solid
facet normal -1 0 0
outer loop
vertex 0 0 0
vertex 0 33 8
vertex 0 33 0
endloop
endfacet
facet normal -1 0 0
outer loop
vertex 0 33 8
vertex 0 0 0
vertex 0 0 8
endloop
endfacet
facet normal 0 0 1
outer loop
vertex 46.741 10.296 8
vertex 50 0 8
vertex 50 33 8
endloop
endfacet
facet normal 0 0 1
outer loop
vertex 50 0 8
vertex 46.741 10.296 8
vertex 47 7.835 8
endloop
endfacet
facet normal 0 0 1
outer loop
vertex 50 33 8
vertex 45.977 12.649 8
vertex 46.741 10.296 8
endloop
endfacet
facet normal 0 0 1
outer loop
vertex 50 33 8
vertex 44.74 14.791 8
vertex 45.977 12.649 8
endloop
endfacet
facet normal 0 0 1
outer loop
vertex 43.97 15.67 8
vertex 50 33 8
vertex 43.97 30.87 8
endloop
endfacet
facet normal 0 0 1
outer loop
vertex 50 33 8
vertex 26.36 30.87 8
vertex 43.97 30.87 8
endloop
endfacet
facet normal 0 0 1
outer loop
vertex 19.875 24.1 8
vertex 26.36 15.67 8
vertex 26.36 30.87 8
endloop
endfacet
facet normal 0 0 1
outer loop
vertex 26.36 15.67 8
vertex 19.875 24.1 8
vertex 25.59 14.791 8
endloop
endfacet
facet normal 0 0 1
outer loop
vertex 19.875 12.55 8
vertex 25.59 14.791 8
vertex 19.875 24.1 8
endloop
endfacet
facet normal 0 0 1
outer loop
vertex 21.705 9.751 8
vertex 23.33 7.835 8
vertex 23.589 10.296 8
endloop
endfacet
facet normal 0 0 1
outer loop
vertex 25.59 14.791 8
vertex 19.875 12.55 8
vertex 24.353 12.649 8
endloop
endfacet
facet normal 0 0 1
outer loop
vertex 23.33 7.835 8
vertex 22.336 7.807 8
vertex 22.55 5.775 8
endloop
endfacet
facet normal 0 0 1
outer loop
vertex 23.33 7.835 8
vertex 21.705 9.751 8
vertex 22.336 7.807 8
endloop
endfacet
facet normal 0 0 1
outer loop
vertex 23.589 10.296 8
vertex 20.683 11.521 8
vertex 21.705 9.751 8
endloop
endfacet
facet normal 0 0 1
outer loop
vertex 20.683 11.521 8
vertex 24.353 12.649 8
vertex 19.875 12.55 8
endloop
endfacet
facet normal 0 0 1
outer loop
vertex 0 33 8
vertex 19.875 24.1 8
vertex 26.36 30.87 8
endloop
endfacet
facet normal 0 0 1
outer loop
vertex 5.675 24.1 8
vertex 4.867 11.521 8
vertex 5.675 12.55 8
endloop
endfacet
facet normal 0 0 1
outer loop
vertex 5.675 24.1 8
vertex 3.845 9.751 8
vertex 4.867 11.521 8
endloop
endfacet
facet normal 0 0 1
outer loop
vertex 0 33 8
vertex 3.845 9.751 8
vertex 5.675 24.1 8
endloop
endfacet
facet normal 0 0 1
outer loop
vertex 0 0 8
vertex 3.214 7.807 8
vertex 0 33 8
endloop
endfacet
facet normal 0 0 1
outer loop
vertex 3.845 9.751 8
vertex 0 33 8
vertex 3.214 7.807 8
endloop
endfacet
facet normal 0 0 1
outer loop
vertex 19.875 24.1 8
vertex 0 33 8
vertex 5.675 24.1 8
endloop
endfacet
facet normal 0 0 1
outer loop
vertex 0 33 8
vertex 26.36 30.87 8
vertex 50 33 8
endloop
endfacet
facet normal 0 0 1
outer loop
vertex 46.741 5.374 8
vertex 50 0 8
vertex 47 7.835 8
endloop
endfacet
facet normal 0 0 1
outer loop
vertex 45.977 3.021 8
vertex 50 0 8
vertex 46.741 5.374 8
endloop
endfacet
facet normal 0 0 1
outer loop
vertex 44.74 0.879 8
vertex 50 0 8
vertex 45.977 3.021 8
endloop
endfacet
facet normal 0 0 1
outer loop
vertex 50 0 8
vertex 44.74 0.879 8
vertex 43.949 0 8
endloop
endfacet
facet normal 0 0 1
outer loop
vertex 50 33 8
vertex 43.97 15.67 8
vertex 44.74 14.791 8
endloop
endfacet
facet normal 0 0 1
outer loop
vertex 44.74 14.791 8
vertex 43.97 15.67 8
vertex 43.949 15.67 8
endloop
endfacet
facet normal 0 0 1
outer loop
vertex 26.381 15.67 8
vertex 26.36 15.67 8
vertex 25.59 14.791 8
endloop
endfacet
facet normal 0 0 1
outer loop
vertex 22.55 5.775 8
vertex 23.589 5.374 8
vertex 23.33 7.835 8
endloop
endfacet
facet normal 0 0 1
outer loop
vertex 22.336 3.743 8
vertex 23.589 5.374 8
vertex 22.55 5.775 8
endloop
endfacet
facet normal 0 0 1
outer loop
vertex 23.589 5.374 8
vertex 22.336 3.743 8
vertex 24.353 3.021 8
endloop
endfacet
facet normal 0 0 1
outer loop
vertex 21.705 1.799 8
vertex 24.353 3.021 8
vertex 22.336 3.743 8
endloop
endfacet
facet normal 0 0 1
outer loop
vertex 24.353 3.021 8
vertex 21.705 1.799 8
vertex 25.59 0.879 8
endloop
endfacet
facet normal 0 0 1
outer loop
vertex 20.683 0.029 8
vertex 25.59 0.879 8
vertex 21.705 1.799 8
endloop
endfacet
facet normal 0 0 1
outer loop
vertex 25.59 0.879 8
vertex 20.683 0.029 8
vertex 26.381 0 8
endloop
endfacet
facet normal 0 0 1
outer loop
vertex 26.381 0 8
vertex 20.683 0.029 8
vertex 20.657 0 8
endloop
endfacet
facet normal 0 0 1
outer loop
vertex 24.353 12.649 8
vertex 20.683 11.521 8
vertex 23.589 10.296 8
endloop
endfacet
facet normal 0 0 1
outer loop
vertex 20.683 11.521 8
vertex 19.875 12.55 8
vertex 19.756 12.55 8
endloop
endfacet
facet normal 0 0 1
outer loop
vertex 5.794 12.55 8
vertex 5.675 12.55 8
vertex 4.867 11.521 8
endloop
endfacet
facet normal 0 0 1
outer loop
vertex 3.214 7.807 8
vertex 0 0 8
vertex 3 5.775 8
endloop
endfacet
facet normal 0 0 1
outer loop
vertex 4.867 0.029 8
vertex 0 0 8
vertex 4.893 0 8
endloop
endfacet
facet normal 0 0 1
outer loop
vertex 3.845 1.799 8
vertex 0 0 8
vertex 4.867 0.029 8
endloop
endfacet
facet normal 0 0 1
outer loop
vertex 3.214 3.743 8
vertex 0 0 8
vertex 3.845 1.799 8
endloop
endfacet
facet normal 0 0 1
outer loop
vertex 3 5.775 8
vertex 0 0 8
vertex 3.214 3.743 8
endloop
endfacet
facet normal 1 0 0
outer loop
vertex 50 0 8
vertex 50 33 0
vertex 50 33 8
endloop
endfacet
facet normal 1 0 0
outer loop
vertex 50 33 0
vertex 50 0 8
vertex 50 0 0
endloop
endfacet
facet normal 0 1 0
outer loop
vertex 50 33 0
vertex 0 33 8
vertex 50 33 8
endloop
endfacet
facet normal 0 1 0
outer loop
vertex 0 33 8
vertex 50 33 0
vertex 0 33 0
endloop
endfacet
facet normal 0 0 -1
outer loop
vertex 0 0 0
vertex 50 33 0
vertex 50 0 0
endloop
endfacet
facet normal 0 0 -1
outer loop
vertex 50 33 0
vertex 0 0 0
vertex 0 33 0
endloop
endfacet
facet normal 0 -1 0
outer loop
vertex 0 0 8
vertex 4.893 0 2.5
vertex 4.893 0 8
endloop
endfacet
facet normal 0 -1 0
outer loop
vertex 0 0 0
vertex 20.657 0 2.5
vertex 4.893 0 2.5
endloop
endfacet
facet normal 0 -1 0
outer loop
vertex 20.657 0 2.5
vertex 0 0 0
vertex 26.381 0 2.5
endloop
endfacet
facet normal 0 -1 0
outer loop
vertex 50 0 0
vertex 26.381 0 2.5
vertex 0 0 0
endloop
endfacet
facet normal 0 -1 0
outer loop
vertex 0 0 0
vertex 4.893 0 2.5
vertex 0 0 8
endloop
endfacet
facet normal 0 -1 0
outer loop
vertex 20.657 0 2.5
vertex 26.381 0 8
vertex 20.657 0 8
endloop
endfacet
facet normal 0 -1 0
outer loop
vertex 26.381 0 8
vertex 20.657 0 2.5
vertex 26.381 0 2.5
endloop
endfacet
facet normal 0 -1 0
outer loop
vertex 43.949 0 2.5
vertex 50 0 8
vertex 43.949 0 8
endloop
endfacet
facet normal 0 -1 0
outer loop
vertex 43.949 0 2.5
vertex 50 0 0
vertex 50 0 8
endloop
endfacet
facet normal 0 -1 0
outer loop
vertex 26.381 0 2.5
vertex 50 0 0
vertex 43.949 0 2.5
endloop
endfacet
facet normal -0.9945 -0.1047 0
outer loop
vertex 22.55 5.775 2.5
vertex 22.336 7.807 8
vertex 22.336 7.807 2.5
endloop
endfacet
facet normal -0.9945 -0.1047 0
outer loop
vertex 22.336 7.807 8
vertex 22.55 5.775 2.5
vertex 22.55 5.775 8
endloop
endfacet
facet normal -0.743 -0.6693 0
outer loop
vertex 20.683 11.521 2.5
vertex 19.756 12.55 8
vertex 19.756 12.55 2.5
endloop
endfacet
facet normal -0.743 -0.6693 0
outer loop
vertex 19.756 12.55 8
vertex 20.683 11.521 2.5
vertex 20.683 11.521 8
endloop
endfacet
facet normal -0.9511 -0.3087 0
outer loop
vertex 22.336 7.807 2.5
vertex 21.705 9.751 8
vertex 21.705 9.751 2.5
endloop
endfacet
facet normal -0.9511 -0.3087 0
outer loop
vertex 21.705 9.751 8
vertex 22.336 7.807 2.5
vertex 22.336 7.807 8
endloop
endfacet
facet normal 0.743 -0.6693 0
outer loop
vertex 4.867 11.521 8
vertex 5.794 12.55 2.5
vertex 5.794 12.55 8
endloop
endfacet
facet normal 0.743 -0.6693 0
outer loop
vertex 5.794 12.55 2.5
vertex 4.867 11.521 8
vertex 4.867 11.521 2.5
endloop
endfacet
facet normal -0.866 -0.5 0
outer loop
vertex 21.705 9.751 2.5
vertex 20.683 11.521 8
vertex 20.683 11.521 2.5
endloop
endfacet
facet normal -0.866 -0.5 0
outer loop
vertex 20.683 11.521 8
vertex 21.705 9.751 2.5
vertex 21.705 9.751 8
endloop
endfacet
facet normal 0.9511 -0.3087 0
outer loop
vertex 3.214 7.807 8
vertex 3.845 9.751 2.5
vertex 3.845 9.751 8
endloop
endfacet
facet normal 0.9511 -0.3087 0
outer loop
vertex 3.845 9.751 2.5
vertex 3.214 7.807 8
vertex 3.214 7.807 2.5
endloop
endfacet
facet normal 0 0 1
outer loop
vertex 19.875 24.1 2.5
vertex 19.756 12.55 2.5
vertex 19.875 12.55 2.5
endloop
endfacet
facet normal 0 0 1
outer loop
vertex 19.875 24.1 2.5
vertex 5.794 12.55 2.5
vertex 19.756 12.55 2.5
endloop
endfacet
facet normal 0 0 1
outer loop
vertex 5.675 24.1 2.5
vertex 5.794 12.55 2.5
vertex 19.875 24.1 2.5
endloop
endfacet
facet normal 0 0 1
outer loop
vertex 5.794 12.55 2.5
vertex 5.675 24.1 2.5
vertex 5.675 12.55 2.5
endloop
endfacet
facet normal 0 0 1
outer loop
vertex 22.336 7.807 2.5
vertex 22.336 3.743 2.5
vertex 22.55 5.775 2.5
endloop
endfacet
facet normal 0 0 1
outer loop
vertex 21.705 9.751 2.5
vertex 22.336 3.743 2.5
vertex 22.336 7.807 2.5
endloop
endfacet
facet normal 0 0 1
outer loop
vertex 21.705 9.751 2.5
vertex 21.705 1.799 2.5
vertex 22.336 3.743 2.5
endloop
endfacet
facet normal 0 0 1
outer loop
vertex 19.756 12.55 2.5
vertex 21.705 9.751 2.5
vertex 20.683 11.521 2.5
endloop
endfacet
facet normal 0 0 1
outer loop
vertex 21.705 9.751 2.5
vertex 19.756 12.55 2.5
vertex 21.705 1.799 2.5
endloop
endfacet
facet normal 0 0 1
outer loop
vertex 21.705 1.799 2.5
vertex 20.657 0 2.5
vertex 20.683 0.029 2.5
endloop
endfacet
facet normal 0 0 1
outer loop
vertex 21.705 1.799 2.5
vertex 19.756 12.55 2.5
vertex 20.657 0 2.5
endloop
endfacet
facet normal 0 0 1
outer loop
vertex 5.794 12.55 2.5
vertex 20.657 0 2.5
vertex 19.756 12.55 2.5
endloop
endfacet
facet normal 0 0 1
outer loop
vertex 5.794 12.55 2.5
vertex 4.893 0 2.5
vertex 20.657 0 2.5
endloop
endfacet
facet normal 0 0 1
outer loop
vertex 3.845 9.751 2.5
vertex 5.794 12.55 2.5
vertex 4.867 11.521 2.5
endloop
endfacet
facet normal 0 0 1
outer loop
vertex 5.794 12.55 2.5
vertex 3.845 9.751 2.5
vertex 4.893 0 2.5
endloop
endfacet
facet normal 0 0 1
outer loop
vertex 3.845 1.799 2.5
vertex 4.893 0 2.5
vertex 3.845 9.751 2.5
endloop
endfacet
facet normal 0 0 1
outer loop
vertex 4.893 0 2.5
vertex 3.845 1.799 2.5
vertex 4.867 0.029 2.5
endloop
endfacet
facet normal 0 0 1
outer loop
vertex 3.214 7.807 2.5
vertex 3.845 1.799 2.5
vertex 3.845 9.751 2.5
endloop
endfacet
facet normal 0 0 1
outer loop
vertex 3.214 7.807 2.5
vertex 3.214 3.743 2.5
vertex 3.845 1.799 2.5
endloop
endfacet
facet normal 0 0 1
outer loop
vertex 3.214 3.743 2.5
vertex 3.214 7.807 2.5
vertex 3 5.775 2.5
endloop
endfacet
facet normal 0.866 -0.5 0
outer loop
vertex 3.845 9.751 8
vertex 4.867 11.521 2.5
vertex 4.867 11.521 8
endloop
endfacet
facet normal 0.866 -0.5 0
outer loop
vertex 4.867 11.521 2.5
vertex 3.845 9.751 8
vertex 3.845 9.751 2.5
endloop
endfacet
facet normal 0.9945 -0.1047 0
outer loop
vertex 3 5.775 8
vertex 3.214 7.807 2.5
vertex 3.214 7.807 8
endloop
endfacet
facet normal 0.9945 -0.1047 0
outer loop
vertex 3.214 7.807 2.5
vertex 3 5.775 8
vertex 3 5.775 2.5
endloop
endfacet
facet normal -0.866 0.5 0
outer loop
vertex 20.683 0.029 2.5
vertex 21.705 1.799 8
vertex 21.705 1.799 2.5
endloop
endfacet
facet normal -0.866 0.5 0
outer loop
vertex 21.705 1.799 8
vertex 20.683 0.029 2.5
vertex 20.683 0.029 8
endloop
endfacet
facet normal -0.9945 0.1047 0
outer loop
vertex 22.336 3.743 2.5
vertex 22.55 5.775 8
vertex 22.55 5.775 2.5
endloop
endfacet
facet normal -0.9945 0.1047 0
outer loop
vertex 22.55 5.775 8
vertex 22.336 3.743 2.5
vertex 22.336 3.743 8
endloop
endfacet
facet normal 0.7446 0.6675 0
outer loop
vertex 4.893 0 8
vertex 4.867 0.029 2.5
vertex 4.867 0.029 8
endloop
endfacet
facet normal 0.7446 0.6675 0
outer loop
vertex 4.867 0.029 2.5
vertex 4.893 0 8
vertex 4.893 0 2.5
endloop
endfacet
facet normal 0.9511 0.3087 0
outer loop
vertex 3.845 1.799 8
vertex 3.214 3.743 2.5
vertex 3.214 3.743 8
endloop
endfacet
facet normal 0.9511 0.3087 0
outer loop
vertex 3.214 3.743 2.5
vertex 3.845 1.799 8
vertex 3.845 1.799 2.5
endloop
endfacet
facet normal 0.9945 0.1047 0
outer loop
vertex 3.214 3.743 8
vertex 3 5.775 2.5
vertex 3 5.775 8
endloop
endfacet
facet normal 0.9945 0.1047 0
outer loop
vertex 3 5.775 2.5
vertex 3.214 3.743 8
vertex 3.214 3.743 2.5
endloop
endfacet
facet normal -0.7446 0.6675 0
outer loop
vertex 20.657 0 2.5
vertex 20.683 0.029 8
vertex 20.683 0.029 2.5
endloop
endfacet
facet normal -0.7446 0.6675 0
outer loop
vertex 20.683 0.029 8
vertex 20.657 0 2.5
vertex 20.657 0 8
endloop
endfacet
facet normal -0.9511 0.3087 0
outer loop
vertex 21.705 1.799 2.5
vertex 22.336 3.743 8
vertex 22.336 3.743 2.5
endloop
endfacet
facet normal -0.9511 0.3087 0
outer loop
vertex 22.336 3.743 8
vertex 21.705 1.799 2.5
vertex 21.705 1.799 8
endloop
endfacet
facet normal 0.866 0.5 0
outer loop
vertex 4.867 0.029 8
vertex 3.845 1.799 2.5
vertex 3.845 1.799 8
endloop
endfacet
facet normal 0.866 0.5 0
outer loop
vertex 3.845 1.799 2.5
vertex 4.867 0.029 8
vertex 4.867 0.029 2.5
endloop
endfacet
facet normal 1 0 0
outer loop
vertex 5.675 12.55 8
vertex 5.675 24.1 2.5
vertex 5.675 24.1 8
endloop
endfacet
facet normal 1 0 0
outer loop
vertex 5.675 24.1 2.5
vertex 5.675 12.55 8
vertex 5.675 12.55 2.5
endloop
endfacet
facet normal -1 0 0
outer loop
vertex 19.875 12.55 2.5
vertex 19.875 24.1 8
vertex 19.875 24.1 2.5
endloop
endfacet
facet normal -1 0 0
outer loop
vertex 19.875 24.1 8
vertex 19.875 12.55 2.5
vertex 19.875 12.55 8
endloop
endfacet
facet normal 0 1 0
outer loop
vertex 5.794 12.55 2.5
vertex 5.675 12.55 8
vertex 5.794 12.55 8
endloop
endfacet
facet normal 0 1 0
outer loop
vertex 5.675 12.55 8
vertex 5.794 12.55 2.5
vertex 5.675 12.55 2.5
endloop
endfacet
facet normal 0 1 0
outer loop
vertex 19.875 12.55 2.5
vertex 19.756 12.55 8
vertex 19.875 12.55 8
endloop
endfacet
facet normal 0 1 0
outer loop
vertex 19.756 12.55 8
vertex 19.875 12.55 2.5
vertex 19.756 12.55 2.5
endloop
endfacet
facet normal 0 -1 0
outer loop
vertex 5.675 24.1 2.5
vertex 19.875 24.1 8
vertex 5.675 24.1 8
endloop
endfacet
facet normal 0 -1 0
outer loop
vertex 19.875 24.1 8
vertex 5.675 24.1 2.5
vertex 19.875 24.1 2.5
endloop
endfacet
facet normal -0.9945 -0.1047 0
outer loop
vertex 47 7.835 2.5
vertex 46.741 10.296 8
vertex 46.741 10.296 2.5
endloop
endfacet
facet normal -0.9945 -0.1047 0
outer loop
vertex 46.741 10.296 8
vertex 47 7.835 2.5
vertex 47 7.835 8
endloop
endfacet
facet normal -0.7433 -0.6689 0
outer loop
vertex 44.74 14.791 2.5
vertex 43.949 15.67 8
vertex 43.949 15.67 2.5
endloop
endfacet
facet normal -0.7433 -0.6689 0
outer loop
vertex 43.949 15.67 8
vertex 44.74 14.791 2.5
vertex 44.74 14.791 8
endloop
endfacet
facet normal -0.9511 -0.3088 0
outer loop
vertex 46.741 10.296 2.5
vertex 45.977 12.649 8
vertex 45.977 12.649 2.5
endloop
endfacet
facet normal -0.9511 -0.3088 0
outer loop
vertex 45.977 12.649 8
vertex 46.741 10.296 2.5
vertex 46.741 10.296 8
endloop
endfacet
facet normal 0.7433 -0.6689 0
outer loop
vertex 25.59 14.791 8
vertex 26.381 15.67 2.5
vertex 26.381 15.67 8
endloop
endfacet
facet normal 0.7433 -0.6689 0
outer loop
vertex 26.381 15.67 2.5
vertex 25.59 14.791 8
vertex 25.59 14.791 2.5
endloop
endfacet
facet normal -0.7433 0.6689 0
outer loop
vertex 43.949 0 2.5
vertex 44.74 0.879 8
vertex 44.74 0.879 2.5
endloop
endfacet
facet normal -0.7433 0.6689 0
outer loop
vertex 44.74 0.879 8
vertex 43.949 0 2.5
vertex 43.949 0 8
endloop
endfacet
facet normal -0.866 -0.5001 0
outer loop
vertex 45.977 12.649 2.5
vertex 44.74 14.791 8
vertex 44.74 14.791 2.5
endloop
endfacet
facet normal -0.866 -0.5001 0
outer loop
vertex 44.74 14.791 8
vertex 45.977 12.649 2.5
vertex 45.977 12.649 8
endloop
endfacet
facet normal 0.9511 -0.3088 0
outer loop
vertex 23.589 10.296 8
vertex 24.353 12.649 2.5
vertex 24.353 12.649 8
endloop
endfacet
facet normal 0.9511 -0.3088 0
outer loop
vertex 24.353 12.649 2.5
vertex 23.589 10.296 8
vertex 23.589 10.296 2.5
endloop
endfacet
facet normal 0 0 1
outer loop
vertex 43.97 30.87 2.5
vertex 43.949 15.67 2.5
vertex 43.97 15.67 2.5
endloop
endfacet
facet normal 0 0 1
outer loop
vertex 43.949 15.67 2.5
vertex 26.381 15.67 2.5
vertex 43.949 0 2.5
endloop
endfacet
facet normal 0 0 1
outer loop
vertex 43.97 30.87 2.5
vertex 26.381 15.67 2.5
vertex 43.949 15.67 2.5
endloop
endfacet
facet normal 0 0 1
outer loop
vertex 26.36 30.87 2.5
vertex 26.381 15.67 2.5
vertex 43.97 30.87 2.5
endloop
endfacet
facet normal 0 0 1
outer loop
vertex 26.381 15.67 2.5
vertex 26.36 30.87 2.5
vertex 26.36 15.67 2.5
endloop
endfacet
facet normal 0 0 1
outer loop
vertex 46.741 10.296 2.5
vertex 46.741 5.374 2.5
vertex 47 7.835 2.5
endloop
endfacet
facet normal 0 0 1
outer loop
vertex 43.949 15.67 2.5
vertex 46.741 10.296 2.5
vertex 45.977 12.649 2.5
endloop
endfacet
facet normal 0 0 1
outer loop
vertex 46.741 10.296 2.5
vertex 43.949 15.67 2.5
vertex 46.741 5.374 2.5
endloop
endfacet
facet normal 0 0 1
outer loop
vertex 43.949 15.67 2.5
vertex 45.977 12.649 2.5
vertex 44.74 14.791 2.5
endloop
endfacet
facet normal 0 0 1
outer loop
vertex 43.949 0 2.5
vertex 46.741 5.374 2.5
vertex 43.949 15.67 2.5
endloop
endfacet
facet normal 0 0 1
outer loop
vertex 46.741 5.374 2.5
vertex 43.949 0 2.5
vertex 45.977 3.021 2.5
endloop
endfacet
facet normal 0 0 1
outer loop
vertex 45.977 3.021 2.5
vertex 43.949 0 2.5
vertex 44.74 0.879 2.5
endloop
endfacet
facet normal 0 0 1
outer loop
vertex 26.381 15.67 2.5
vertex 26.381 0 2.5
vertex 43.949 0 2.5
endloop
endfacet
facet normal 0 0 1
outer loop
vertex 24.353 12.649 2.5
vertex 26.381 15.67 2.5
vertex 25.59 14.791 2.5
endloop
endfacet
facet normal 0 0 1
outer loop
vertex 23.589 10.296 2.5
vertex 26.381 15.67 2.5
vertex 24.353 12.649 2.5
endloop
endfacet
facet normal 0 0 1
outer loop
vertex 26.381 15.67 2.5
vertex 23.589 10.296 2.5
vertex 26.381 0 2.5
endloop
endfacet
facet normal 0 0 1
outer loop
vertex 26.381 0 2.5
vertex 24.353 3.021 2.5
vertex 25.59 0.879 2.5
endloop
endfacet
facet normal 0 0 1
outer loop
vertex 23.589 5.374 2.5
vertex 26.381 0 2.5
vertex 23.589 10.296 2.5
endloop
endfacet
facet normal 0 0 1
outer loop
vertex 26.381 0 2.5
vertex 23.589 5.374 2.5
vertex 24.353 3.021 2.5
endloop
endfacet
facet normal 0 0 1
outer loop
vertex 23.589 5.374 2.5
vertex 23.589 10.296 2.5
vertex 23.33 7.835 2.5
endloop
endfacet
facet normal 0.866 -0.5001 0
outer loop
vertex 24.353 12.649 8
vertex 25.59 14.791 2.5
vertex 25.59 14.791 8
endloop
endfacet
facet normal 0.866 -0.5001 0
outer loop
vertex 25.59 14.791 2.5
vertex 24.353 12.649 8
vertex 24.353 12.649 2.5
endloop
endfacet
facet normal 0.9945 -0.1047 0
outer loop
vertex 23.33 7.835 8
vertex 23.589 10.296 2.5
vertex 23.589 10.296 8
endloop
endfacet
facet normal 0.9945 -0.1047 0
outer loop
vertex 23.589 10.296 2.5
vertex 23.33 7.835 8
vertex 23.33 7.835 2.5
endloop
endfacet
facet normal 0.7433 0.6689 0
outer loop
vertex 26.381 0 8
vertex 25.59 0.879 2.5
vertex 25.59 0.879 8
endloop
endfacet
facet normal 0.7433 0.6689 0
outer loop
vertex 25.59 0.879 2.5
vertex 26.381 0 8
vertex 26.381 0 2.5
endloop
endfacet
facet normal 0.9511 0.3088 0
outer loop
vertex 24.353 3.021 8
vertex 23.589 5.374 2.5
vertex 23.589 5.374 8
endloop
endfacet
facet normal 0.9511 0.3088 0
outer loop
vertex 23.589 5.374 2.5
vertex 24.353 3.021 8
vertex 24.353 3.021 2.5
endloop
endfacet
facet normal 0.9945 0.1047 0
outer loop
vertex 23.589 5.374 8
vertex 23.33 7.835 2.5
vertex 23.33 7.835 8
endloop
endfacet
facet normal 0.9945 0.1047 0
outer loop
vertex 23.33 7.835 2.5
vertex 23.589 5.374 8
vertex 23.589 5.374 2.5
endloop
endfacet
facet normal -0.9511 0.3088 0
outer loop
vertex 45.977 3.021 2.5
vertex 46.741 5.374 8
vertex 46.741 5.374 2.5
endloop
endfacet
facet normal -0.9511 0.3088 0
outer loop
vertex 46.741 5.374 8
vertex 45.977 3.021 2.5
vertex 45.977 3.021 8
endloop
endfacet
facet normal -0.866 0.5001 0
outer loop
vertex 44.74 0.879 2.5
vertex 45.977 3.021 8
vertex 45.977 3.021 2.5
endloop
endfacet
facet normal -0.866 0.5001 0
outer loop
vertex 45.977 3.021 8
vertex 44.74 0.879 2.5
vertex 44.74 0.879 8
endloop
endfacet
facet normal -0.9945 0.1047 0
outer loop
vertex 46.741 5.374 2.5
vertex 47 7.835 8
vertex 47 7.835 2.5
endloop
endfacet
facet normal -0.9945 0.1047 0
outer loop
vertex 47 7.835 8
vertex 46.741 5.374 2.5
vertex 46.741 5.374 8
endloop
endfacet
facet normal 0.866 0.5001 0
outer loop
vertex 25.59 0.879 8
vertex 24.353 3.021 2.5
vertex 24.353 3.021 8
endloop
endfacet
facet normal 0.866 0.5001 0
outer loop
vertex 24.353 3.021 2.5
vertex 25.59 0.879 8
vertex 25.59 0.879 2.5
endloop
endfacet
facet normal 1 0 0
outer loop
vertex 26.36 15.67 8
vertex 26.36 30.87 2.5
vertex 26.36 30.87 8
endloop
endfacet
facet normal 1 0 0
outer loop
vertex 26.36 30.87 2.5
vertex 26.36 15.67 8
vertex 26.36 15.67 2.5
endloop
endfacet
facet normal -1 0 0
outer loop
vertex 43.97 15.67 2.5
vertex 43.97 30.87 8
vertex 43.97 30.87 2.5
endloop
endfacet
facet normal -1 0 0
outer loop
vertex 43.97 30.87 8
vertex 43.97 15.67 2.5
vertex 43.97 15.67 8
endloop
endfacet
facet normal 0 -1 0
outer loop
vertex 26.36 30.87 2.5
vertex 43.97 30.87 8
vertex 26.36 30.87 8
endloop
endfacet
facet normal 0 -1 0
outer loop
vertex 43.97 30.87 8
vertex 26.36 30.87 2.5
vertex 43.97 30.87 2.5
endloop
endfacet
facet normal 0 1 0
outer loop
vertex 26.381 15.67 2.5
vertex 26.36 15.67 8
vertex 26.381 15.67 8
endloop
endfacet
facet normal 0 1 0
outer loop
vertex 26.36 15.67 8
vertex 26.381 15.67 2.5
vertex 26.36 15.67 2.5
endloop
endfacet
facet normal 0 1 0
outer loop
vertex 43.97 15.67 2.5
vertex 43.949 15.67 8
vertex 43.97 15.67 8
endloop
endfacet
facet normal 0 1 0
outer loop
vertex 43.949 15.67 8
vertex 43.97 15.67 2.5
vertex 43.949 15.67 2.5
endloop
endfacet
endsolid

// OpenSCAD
length = 50;
width = 33;
height = 8;

//Based on magnet size:
magnetBaseInnerDiameter = 15.4;

//
//		2s
//			23 tokens
//			19.05 diameter
//			extra box 13.7 x 9.05
//			height 23.45 + 21.39
//		4s
//			15 tokens
//			23.17 diameter
//			extra box 17.11 x 10.7
//			height 29.35, or 15.68 + 13.74


smallCircleDiameter = 19.05 + .5;
smallCircleOffset = 4;
//smallCircleHeight1 = 23.45 + .5;
//smallCircleHeight2 = 21.39 + .5;
smallCircleHeight1 = 5 + .5;
smallCircleHeight2 = 5 + .5;

smallExtraBoxLength=13.7 + .5;
smallExtraBoxWidth = 9.05 + 2 + .5;
smallBoxWidthOffset = 3;

mediumCircleDiameter = 23.17 + .5;
mediumCircleOffset = 4;
//mediumCircleHeight1 = 15.68 + .5;
//mediumCircleHeight2 = 13.74 + .5;
mediumCircleHeight1 = 5 + .5;
mediumCircleHeight2 = 5 + .5;
mediumExtraBoxLength=17.11 + .5;
mediumExtraBoxWidth = 10.7 + 4 + .5;
mediumBoxWidthOffset = 4;



spaceBetweenCircles = 3;

    

difference(){
    cube([length, width, height]);

    translate([spaceBetweenCircles + smallCircleDiameter/2, smallCircleDiameter/2 - smallCircleOffset, height - smallCircleHeight1])
        cylinder(smallCircleHeight1, d=smallCircleDiameter);


    translate([spaceBetweenCircles + smallCircleDiameter/2 - smallExtraBoxLength/2, (smallCircleDiameter - smallCircleOffset) - smallBoxWidthOffset, height - smallCircleHeight1])
        cube([smallExtraBoxLength, smallExtraBoxWidth, smallCircleHeight1]);
    
    
    translate([length - (mediumCircleDiameter/2 + spaceBetweenCircles), mediumCircleDiameter/2 - mediumCircleOffset, height - mediumCircleHeight1])
        cylinder(mediumCircleHeight1, d=mediumCircleDiameter);
    
    translate([length - (mediumExtraBoxLength + spaceBetweenCircles + mediumCircleDiameter/2 - mediumExtraBoxLength/2), (mediumCircleDiameter - mediumCircleOffset) - mediumBoxWidthOffset, height - mediumCircleHeight1])
        cube([mediumExtraBoxLength, mediumExtraBoxWidth, mediumCircleHeight1]);
    
    
    
        

}
